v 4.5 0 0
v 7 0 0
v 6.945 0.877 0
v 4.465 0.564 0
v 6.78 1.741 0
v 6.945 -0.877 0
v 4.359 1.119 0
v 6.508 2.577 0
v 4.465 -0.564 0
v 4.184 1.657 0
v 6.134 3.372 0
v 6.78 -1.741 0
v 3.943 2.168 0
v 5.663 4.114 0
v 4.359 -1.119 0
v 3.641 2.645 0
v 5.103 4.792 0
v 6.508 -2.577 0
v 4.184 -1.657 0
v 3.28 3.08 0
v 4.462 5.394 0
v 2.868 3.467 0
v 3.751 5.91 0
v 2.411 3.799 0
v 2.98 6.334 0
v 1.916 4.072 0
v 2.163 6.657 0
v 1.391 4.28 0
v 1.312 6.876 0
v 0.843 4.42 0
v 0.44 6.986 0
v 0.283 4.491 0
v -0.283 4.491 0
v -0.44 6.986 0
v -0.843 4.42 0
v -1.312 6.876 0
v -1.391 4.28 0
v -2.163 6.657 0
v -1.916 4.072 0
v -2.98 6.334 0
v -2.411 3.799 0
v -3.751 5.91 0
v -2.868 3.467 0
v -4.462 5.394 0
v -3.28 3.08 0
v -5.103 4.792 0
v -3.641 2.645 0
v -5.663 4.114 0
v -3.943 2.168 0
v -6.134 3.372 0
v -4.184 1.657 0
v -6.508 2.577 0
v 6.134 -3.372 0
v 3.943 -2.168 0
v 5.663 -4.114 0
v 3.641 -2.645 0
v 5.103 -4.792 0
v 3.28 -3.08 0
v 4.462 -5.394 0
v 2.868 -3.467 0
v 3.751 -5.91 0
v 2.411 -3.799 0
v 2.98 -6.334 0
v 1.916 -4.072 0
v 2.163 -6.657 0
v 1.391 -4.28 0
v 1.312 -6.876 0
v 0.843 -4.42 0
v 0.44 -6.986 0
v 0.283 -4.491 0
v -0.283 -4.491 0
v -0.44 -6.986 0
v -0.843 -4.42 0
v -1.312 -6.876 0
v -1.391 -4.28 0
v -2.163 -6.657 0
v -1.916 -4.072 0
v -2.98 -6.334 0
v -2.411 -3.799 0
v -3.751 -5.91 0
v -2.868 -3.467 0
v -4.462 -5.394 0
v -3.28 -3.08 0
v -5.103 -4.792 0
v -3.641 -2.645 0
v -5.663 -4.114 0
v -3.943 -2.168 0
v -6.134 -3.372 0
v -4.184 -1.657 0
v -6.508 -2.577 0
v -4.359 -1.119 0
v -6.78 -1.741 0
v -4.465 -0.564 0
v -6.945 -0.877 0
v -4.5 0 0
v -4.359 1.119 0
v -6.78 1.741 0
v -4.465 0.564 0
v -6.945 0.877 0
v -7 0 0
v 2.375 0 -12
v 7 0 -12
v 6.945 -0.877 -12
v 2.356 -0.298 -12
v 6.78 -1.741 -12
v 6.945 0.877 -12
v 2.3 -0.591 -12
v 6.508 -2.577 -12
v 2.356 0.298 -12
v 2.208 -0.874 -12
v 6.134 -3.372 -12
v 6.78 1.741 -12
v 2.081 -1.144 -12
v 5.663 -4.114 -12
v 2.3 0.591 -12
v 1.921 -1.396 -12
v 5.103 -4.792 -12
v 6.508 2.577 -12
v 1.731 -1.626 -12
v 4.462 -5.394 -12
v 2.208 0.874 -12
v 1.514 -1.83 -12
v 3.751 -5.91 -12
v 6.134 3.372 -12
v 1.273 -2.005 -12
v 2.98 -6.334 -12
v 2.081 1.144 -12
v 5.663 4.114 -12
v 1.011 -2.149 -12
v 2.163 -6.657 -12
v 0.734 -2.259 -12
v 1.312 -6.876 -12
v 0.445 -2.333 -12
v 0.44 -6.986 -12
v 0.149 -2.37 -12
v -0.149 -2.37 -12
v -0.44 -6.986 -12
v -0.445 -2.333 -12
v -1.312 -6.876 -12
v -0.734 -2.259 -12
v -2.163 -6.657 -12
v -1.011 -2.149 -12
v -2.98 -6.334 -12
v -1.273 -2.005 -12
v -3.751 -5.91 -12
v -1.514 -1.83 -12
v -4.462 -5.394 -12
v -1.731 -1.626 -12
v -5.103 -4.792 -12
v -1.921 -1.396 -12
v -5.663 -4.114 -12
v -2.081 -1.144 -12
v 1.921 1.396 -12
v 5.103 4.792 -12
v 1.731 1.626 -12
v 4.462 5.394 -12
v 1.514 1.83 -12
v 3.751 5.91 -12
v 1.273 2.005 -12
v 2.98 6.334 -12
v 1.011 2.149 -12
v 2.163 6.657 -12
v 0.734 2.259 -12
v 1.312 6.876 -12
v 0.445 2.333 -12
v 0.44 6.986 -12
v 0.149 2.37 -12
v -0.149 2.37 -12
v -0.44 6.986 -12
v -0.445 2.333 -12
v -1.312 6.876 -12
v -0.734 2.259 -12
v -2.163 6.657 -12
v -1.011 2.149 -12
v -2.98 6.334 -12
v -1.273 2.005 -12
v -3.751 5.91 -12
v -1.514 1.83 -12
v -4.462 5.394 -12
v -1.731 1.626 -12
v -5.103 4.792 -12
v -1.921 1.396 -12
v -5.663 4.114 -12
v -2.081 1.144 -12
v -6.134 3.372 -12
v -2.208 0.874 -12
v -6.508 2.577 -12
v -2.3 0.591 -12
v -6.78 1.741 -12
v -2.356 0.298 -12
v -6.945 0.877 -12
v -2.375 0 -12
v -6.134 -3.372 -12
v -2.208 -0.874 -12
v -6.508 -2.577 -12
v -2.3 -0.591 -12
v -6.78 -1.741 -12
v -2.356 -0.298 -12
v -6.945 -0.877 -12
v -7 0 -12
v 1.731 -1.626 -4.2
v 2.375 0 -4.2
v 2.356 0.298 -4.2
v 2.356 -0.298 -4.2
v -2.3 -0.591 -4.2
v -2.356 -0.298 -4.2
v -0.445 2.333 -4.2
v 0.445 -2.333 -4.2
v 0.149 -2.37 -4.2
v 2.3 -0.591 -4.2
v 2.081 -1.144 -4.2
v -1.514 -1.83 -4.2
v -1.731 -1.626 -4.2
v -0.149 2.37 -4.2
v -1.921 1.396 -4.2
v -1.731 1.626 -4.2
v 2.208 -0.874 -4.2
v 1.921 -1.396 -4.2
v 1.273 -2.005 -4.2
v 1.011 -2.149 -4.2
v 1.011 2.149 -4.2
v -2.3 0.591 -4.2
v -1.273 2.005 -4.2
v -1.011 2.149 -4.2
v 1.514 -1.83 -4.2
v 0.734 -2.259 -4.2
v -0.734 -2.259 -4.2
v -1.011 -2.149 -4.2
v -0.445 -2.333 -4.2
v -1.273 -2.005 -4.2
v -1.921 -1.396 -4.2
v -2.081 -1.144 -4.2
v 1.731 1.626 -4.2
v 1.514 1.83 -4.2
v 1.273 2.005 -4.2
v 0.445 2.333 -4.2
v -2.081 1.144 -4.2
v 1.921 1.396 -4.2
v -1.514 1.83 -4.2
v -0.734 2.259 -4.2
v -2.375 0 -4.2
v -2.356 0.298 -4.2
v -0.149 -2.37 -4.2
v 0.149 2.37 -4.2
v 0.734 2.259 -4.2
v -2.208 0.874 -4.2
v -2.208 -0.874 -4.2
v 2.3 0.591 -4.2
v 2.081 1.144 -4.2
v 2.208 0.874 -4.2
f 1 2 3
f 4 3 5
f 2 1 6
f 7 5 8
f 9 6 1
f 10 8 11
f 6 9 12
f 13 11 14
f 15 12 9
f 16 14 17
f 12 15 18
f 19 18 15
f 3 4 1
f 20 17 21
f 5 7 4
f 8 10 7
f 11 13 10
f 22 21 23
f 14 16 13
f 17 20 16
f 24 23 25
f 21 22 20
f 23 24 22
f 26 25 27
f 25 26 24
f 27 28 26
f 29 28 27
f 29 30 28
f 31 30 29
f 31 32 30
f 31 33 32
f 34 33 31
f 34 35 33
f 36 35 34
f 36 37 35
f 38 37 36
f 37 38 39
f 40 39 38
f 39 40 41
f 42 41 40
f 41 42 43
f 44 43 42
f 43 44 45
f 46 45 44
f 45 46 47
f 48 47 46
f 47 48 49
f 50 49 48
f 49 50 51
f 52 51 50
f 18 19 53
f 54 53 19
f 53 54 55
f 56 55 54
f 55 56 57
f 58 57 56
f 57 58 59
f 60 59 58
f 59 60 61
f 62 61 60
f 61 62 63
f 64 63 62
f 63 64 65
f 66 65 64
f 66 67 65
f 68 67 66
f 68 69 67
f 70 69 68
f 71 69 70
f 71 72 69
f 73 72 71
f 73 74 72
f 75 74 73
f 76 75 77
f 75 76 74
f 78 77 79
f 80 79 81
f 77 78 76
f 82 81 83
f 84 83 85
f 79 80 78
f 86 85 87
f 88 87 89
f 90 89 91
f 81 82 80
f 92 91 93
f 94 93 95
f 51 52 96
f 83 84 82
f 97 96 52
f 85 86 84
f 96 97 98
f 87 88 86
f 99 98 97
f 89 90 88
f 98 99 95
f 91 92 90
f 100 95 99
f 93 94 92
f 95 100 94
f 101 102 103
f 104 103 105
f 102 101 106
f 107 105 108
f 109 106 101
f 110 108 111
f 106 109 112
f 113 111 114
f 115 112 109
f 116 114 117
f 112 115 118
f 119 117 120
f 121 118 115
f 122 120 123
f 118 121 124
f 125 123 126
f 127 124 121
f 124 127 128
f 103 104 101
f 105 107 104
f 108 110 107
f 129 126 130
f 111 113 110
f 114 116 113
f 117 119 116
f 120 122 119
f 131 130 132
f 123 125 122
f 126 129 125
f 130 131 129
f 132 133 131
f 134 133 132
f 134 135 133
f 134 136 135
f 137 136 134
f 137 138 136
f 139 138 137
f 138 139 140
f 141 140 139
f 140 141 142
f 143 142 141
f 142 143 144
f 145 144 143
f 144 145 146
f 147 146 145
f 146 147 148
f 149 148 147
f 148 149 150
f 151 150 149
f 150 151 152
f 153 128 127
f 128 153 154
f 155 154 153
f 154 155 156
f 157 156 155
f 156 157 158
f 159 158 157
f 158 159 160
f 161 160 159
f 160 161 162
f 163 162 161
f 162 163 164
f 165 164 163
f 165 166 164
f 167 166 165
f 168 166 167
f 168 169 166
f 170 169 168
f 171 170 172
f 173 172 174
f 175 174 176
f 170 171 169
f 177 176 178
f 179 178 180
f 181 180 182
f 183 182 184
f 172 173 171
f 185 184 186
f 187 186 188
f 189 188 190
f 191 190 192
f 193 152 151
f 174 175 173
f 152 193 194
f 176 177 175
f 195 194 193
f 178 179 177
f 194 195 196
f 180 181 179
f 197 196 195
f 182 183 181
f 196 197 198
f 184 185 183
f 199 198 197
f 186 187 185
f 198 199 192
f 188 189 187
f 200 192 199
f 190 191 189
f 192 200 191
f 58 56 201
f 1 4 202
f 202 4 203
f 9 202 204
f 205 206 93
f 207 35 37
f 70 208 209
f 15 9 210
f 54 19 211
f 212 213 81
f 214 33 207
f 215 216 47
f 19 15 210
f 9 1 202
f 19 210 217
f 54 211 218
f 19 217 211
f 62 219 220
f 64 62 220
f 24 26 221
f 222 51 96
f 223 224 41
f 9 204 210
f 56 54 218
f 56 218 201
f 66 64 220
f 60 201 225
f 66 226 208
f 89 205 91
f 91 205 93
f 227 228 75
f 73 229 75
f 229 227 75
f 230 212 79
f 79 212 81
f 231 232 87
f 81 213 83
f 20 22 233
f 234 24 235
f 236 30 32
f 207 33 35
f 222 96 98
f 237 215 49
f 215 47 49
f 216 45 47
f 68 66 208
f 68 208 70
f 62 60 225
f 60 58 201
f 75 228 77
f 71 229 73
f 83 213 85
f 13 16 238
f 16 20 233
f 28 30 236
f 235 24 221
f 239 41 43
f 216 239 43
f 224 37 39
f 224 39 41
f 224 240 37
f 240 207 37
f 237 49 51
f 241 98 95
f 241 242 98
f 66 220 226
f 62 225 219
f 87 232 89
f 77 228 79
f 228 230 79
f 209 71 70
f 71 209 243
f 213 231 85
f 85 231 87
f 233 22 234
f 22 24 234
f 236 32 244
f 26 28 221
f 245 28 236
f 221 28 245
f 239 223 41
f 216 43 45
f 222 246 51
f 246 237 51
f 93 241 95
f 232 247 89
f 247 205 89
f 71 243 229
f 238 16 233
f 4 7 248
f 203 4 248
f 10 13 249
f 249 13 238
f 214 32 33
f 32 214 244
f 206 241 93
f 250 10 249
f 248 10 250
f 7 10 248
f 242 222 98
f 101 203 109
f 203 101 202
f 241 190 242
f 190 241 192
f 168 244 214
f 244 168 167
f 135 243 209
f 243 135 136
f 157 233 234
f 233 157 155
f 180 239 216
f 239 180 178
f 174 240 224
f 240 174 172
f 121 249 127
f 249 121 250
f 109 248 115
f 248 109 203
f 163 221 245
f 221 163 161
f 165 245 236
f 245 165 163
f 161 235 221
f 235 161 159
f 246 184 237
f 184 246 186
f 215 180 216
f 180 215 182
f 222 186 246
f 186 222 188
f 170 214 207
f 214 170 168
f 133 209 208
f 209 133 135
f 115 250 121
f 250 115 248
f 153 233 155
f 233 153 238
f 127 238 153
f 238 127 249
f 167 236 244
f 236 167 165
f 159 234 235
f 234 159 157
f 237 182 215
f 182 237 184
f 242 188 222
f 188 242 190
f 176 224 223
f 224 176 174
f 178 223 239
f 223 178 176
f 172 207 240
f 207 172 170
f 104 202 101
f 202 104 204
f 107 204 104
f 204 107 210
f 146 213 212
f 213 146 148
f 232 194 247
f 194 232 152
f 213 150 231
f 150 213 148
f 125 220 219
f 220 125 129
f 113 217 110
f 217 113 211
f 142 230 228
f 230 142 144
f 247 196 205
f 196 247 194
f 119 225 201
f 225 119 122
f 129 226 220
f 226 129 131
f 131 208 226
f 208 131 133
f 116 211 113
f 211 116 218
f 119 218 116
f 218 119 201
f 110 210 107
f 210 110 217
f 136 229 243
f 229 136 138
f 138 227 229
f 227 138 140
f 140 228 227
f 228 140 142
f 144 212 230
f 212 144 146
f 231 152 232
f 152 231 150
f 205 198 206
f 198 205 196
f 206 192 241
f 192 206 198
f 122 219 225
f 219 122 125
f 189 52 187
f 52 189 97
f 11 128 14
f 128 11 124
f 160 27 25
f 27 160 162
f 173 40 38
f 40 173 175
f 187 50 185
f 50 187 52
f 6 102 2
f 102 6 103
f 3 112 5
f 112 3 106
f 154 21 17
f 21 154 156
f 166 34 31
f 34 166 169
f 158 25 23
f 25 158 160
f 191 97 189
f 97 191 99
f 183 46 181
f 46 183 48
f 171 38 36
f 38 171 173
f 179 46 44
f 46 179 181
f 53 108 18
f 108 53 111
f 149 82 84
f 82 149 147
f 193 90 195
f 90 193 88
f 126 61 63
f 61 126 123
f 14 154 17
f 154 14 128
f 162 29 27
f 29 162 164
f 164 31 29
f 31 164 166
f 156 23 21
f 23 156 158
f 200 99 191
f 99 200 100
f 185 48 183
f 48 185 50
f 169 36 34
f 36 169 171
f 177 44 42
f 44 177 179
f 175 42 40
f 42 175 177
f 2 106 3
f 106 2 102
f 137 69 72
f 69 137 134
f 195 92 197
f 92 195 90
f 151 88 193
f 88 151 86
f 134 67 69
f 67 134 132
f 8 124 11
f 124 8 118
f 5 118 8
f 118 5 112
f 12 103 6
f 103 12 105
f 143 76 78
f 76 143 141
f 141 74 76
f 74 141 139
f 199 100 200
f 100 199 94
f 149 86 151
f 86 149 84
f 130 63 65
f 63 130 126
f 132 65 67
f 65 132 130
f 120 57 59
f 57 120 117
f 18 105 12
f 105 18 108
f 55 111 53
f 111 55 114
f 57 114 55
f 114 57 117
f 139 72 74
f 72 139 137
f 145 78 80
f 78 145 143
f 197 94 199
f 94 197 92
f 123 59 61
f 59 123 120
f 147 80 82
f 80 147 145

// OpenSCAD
$fn = 50;


difference() {
	union() {
		translate(v = [0, 0, -12.0000000000]) {
			cylinder(h = 12, r = 7.0000000000);
		}
		cylinder(h = 0, r = 13.0000000000);
	}
	union() {
		translate(v = [0, 0, 0]) {
			rotate(a = [0, 0, 0]) {
				difference() {
					union() {
						#translate(v = [0, 0, -12.0000000000]) {
							cylinder(h = 12, r = 2.2500000000);
						}
						#translate(v = [0, 0, -4.2000000000]) {
							cylinder(h = 4.2000000000, r1 = 2.3750000000, r2 = 4.5000000000);
						}
						#translate(v = [0, 0, -12.0000000000]) {
							cylinder(h = 12, r = 2.3750000000);
						}
						#translate(v = [0, 0, -12.0000000000]) {
							cylinder(h = 12, r = 2.2500000000);
						}
					}
					union();
				}
			}
		}
	}
}
